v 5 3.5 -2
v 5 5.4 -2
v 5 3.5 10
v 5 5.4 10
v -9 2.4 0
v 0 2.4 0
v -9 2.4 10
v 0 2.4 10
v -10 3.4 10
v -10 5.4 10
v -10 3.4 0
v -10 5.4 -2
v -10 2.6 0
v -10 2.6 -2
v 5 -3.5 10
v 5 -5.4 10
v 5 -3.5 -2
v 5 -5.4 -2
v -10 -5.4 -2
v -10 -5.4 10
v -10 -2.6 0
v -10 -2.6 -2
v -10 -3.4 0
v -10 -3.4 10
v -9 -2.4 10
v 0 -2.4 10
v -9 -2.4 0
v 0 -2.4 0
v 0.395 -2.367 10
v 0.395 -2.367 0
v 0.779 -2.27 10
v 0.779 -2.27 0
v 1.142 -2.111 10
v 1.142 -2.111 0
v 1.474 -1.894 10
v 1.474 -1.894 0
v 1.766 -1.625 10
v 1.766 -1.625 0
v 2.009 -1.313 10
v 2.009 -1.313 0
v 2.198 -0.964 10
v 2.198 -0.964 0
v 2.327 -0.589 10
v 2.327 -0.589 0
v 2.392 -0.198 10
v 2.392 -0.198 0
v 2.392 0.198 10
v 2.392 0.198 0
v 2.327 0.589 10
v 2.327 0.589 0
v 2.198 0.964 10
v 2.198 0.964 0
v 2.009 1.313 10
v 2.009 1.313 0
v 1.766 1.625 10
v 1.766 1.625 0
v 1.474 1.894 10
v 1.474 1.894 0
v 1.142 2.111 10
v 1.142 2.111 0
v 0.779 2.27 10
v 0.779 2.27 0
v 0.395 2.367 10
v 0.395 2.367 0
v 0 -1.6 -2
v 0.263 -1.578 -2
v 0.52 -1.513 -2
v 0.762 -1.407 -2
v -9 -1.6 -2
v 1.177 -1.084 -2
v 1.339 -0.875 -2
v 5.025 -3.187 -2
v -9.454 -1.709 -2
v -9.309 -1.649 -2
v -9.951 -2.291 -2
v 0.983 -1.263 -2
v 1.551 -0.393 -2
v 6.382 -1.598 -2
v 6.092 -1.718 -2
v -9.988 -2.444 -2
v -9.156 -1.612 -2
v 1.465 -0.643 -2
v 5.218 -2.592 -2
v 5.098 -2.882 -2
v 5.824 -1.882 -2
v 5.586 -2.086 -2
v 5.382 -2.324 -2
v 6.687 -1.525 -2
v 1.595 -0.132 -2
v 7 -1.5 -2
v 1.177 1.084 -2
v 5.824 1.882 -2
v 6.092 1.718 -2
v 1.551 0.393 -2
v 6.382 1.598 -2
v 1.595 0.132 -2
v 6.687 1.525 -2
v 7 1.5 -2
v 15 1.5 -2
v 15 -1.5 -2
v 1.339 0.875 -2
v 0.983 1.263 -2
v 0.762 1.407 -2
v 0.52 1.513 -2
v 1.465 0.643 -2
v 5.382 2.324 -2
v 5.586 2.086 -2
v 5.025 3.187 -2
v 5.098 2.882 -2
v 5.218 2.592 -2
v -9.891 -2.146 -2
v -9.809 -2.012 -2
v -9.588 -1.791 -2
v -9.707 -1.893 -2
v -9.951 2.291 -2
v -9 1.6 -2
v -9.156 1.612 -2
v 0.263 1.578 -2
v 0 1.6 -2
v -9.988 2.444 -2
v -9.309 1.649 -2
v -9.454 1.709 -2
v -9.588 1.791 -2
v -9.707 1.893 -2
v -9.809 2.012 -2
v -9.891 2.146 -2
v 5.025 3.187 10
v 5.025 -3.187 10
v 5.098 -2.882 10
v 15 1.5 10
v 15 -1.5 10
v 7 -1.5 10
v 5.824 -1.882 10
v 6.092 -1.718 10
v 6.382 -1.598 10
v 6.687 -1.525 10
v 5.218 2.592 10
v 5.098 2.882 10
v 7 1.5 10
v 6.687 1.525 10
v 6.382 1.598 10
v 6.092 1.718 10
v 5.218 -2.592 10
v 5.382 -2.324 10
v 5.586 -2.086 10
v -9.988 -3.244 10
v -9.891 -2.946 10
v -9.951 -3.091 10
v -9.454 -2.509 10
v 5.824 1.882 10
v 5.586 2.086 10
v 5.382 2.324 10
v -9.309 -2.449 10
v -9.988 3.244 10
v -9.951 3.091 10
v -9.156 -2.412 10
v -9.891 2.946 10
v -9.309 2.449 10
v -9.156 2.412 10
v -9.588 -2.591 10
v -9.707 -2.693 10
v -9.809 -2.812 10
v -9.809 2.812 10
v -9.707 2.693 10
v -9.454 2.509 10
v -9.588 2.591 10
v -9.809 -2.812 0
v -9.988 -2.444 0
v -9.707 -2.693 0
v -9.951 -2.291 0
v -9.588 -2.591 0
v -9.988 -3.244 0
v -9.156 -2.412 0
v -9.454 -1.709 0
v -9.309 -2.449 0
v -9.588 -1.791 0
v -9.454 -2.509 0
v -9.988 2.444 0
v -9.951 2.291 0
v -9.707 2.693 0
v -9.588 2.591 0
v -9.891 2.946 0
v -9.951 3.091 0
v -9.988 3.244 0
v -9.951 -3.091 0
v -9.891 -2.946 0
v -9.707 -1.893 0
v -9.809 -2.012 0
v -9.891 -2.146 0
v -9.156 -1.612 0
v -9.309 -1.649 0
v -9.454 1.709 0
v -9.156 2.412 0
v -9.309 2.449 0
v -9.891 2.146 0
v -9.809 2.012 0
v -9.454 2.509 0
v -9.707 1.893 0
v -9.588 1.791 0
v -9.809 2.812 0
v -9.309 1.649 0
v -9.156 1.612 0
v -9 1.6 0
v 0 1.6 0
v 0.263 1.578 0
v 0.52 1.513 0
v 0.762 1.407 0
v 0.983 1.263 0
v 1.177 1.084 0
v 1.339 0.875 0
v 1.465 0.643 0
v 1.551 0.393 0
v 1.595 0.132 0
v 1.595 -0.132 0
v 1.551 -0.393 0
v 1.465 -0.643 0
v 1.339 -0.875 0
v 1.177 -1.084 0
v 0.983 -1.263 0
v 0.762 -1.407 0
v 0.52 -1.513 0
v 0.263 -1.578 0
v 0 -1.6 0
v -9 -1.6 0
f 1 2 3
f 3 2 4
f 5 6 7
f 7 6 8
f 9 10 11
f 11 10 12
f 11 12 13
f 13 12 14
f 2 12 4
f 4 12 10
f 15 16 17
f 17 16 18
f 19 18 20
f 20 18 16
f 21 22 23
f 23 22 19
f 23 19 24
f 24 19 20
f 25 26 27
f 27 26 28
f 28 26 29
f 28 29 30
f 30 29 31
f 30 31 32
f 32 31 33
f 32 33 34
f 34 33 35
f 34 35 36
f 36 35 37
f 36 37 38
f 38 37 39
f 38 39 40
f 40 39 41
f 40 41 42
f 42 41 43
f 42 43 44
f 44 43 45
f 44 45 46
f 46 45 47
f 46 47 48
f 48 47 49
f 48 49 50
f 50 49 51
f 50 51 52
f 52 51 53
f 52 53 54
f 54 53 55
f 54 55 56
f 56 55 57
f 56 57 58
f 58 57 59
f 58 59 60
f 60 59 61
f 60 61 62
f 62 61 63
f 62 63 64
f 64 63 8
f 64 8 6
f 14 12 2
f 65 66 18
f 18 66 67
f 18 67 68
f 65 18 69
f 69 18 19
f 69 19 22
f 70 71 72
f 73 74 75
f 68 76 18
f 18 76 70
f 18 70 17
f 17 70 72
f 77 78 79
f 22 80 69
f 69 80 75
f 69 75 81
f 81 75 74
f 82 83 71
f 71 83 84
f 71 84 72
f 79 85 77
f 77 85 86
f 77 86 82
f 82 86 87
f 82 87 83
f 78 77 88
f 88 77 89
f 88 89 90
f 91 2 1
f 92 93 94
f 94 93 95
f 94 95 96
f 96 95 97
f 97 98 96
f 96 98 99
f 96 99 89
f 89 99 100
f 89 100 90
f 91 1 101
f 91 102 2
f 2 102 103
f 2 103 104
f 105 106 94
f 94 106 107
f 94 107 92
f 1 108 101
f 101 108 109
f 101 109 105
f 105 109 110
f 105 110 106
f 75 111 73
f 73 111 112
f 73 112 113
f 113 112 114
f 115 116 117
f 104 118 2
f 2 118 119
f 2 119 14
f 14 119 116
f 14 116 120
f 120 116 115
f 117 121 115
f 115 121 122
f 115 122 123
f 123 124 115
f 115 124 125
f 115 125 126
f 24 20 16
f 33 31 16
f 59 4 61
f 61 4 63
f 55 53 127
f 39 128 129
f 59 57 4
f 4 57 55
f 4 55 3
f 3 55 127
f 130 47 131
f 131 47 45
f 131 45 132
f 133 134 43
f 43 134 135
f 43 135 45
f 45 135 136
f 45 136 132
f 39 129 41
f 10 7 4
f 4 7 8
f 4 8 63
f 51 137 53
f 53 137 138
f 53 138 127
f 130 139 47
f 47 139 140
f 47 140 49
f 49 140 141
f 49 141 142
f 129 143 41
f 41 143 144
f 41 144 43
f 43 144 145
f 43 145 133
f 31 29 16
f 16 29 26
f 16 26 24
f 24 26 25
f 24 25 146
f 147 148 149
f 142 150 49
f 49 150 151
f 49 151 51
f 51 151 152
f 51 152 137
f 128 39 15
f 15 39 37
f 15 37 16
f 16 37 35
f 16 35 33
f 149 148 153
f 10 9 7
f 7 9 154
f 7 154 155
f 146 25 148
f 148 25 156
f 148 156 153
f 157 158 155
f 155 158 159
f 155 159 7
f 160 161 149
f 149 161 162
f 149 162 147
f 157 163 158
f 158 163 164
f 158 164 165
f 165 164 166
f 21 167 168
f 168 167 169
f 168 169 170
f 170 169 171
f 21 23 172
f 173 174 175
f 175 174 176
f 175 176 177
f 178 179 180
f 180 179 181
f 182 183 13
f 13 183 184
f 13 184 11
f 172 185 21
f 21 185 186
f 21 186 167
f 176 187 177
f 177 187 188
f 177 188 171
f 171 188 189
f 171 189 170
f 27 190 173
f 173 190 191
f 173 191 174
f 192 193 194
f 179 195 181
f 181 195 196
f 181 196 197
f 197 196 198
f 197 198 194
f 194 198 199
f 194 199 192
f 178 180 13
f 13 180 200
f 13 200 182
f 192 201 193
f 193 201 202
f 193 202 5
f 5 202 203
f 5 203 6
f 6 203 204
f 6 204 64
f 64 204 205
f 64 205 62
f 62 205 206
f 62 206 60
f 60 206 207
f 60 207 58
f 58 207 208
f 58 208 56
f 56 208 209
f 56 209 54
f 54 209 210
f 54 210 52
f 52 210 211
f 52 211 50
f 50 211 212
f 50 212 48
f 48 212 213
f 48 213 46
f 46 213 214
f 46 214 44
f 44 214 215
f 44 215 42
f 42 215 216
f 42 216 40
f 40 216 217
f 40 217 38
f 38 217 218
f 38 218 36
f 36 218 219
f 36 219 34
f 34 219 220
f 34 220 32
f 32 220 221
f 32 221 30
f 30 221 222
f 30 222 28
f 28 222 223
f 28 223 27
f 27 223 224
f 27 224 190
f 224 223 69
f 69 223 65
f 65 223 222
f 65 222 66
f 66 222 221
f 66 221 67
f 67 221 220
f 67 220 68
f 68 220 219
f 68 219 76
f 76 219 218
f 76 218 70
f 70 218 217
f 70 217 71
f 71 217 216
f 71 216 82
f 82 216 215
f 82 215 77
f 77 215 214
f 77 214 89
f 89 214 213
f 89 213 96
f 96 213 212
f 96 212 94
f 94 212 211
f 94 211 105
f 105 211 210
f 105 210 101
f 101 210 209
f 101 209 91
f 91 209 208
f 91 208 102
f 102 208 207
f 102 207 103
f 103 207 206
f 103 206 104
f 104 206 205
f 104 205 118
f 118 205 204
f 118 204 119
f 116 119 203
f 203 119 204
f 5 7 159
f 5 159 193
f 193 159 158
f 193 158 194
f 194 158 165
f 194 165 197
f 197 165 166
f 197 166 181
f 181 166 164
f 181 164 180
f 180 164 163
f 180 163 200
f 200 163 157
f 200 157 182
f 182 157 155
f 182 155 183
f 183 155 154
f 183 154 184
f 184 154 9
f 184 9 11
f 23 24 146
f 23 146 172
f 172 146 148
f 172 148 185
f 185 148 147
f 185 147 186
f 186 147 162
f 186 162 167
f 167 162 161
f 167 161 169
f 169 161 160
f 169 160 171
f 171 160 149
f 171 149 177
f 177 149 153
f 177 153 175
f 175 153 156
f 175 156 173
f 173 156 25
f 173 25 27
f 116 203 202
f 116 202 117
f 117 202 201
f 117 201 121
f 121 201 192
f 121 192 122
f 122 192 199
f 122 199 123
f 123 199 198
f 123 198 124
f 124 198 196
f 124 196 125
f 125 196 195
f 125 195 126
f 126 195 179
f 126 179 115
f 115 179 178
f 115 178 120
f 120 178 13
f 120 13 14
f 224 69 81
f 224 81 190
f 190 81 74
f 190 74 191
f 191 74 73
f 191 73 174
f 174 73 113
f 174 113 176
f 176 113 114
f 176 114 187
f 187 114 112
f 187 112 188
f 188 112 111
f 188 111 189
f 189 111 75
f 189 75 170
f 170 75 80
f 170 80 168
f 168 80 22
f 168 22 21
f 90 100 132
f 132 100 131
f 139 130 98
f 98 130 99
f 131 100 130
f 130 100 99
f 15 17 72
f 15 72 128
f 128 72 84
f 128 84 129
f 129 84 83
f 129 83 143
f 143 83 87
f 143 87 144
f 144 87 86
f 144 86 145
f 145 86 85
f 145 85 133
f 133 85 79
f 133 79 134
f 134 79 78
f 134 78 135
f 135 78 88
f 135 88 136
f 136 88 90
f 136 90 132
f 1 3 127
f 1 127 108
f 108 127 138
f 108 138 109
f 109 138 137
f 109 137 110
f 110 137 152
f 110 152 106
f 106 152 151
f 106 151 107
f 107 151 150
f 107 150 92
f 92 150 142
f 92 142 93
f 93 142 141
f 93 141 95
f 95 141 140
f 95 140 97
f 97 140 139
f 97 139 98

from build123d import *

# Parameters (mm, degrees)
BOSS_EXTRUDE1_DEPTH      = 10
BOSS_EXTRUDE1_DEPTH_BACK = 2
BOSS_EXTRUDE2_DEPTH      = 2
FILLET6_R                = 1
FILLET7_R                = 1
BOSS_EXTRUDE3_DEPTH      = 10
BOSS_EXTRUDE3_DEPTH_BACK = 2
SKETCH1_5_W              = 10
SKETCH1_5_H              = 3
FILLET8_R                = 2


with BuildPart() as part:
    # Sketch1 → Boss-Extrude1 (new, two sides: drawn at the far end of the back side and taken through both)
    with BuildSketch(Plane.XY.offset(-BOSS_EXTRUDE1_DEPTH_BACK)):
        with BuildLine():
            Line((-10, 2.4), (0, 2.4))
            ThreePointArc((0, 2.4), (2.4, 0), (0, -2.4))
            Line((0, -2.4), (-10, -2.4))
            Line((-10, -2.4), (-10, -5.4))
            Line((-10, -5.4), (5, -5.4))
            Line((5, -5.4), (5, -1.5))
            Line((5, -1.5), (5, 1.5))
            Line((5, 1.5), (5, 5.4))
            Line((5, 5.4), (-10, 5.4))
            Line((-10, 5.4), (-10, 2.4))
        make_face()
    extrude(amount=BOSS_EXTRUDE1_DEPTH + BOSS_EXTRUDE1_DEPTH_BACK)

    # Sketch1<4> → Boss-Extrude2 (add)
    with BuildSketch(Plane.XY):
        with BuildLine():
            Line((-10, -1.6), (-10, -5.4))
            Line((-10, -5.4), (5, -5.4))
            Line((5, -5.4), (5, 5.4))
            Line((5, 5.4), (-10, 5.4))
            Line((-10, 5.4), (-10, 1.6))
            Line((-10, 1.6), (0, 1.6))
            ThreePointArc((0, 1.6), (1.6, 0), (0, -1.6))
            Line((0, -1.6), (-10, -1.6))
        make_face()
    extrude(amount=-BOSS_EXTRUDE2_DEPTH)

    # Fillet6
    fillet6_edges = [part.edges().sort_by_distance(p)[0] for p in [
        (-10, 2.4, 5),
        (-10, -2.4, 5),
    ]]
    fillet(fillet6_edges, radius=FILLET6_R)

    # Fillet7
    fillet7_edges = [part.edges().sort_by_distance(p)[0] for p in [
        (-10, 1.6, -1),
        (-10, -1.6, -1),
    ]]
    fillet(fillet7_edges, radius=FILLET7_R)

    # Sketch1<5> → Boss-Extrude3 (add, two sides: drawn at the far end of the back side and taken through both)
    with BuildSketch(Plane.XY.offset(-BOSS_EXTRUDE3_DEPTH_BACK)):
        with Locations((10, 0)):
            Rectangle(SKETCH1_5_W, SKETCH1_5_H)
    extrude(amount=BOSS_EXTRUDE3_DEPTH + BOSS_EXTRUDE3_DEPTH_BACK)

    # Fillet8
    fillet8_edges = [part.edges().sort_by_distance(p)[0] for p in [
        (5, -1.5, 4),
        (5, 1.5, 4),
    ]]
    fillet(fillet8_edges, radius=FILLET8_R)


solid = part.part
